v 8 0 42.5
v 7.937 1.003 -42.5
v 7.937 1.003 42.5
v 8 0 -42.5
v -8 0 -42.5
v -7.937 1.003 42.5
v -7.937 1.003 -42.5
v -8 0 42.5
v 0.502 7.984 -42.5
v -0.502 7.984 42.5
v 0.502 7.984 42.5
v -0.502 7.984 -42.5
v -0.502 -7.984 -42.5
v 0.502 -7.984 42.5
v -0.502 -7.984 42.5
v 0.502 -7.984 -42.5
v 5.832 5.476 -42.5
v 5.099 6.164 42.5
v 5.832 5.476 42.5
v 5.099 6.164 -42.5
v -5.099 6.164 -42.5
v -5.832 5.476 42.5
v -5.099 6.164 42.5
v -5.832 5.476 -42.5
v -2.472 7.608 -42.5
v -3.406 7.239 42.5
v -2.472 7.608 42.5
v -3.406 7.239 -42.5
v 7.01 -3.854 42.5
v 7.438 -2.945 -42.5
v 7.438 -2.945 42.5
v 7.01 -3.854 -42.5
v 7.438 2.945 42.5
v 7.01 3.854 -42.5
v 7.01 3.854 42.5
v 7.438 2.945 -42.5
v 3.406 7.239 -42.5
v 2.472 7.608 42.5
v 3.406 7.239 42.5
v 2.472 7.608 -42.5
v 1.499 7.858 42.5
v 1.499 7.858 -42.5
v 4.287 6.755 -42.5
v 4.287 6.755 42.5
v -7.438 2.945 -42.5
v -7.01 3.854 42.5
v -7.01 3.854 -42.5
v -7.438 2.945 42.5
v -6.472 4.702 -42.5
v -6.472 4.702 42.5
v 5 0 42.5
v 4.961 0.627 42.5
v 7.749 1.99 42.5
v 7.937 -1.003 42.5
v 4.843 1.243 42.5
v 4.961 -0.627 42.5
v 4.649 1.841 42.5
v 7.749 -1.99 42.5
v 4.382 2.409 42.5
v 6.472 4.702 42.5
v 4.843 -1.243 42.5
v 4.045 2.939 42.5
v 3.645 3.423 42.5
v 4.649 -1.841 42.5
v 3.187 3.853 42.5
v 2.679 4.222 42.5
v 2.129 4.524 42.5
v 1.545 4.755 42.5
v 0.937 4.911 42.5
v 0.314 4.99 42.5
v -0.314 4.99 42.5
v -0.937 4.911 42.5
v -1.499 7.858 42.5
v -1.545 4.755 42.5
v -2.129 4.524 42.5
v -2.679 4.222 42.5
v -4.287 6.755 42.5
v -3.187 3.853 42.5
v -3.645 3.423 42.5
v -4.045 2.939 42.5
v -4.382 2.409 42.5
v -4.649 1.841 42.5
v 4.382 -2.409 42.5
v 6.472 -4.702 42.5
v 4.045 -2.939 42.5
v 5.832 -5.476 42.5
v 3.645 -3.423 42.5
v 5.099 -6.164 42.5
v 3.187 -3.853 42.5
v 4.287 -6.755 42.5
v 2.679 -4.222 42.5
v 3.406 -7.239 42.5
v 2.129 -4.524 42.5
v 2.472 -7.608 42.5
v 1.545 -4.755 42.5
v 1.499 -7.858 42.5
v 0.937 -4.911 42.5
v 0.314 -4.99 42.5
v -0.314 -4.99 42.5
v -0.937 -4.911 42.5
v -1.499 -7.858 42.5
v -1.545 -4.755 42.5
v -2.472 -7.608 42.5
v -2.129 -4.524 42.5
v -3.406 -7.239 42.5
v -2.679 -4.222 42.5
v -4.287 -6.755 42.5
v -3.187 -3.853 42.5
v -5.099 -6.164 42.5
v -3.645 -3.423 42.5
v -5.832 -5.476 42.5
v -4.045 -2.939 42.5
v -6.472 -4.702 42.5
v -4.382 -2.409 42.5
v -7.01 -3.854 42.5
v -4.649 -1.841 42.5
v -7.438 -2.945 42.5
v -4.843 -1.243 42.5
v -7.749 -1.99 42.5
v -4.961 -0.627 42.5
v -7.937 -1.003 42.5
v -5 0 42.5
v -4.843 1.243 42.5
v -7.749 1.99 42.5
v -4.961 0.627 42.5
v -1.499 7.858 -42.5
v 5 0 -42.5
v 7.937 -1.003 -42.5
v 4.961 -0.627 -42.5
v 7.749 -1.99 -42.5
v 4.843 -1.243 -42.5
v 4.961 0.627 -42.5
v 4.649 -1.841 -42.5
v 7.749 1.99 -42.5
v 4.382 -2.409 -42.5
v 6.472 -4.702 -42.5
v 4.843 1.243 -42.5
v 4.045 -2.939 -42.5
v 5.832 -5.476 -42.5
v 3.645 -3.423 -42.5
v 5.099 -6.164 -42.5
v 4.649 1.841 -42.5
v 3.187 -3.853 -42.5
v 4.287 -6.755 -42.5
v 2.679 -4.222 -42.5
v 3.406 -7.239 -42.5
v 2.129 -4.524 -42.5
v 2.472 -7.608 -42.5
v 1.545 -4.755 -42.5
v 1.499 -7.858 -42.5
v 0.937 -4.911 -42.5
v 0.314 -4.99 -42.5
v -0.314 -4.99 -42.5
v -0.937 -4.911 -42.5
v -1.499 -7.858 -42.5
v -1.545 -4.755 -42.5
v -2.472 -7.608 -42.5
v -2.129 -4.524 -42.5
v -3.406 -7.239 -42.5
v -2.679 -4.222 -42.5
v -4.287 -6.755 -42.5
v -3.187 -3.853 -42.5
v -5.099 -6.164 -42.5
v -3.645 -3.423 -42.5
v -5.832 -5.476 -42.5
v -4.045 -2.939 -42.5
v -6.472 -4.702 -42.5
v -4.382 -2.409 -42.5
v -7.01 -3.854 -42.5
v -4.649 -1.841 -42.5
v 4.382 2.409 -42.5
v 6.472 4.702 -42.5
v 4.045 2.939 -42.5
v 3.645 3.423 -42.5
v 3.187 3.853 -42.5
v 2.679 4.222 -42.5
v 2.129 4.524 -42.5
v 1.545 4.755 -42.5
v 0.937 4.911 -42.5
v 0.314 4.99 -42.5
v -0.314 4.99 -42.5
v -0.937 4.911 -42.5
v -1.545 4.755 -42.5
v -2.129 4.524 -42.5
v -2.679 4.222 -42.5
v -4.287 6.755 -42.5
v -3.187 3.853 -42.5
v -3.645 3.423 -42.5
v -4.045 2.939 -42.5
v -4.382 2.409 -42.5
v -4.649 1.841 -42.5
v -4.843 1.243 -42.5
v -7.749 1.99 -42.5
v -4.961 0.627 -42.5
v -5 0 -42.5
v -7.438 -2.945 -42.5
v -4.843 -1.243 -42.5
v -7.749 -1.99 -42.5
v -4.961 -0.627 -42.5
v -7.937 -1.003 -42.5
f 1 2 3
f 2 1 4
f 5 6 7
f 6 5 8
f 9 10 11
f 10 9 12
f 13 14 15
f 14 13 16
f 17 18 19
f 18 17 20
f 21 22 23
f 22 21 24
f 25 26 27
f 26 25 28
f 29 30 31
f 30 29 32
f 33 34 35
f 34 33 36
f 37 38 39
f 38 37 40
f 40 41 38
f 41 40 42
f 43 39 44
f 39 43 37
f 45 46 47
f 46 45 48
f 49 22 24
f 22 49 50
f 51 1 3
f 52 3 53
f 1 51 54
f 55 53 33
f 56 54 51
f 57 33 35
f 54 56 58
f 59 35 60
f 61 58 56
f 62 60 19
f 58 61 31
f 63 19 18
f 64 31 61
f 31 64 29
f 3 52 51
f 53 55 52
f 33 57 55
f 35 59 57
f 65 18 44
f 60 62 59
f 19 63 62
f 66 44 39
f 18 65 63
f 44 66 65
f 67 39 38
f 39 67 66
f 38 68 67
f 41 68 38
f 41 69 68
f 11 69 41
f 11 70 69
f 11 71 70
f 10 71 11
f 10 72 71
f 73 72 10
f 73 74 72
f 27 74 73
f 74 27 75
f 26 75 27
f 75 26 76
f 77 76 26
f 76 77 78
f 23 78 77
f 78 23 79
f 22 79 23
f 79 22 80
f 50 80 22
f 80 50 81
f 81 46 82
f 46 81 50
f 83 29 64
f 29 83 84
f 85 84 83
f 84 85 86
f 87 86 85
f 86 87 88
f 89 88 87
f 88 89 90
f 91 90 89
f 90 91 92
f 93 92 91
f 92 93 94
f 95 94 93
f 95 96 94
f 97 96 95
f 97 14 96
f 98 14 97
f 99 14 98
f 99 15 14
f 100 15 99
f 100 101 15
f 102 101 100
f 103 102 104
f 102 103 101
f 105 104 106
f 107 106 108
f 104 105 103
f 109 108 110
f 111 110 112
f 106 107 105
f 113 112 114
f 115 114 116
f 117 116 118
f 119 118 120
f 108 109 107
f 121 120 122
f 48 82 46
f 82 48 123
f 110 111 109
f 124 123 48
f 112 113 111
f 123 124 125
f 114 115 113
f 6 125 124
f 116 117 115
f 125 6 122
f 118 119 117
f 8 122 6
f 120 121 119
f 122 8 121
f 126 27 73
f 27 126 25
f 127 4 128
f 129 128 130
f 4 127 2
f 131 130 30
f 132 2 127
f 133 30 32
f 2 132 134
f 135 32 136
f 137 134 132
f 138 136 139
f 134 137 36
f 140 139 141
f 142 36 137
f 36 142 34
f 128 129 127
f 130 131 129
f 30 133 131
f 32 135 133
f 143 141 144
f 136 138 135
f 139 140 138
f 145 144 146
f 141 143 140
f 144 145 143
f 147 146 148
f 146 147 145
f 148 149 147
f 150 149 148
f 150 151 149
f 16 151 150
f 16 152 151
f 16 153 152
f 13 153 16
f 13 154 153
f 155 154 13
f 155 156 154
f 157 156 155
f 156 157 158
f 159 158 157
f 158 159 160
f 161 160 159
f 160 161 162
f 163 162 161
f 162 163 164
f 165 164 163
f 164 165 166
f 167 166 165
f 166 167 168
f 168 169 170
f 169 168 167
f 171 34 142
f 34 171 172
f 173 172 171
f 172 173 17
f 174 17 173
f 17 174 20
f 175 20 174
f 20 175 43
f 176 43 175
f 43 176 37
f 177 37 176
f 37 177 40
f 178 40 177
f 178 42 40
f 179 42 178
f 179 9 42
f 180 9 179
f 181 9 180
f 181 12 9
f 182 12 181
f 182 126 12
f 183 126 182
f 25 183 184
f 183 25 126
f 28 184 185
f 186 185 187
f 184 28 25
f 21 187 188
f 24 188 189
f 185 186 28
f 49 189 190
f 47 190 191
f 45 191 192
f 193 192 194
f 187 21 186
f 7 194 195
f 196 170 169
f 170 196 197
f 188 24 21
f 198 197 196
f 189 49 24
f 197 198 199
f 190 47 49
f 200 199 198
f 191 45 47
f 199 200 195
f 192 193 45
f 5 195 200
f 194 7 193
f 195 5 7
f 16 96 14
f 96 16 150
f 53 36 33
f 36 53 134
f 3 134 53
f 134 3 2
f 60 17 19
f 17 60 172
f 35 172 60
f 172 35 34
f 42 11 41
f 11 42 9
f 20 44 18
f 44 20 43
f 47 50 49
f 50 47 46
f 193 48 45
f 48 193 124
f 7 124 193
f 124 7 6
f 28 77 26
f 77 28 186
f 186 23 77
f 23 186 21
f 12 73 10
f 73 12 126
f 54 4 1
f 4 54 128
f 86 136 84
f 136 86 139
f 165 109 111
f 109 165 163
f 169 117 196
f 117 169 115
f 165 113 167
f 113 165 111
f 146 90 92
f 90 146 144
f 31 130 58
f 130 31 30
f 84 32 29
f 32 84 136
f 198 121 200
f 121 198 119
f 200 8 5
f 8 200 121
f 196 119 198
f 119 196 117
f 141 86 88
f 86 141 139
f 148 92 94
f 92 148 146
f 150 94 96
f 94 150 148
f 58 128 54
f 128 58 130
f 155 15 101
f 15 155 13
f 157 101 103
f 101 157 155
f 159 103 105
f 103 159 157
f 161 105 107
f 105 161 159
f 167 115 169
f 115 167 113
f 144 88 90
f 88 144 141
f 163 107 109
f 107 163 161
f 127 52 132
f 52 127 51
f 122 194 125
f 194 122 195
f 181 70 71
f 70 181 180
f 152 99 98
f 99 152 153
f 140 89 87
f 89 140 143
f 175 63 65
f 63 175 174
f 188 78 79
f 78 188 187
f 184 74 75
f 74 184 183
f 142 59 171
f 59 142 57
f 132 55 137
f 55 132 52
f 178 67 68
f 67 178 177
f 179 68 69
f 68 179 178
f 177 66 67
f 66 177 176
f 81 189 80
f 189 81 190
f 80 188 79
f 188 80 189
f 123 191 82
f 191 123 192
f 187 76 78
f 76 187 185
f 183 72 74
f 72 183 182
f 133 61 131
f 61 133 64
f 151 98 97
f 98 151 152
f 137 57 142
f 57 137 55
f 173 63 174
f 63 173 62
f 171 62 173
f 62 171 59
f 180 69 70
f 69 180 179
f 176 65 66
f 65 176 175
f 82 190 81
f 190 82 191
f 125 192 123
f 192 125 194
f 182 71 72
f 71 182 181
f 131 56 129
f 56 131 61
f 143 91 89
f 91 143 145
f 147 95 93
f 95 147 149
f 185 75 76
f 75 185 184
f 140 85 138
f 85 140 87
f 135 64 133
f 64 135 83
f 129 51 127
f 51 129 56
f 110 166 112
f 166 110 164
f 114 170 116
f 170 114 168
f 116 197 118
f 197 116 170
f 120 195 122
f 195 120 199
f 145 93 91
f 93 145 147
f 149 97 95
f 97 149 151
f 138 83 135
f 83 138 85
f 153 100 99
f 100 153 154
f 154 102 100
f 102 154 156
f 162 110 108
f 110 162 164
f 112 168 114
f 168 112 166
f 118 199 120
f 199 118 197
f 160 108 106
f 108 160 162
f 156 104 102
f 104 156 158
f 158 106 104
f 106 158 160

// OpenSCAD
$fn = 50;


difference() {
	union() {
		translate(v = [0, 0, -42.5000000000]) {
			cylinder(h = 85, r = 8.0000000000);
		}
	}
	union() {
		translate(v = [0, 0, -100.0000000000]) {
			cylinder(h = 200, r = 5.0000000000);
		}
	}
}
